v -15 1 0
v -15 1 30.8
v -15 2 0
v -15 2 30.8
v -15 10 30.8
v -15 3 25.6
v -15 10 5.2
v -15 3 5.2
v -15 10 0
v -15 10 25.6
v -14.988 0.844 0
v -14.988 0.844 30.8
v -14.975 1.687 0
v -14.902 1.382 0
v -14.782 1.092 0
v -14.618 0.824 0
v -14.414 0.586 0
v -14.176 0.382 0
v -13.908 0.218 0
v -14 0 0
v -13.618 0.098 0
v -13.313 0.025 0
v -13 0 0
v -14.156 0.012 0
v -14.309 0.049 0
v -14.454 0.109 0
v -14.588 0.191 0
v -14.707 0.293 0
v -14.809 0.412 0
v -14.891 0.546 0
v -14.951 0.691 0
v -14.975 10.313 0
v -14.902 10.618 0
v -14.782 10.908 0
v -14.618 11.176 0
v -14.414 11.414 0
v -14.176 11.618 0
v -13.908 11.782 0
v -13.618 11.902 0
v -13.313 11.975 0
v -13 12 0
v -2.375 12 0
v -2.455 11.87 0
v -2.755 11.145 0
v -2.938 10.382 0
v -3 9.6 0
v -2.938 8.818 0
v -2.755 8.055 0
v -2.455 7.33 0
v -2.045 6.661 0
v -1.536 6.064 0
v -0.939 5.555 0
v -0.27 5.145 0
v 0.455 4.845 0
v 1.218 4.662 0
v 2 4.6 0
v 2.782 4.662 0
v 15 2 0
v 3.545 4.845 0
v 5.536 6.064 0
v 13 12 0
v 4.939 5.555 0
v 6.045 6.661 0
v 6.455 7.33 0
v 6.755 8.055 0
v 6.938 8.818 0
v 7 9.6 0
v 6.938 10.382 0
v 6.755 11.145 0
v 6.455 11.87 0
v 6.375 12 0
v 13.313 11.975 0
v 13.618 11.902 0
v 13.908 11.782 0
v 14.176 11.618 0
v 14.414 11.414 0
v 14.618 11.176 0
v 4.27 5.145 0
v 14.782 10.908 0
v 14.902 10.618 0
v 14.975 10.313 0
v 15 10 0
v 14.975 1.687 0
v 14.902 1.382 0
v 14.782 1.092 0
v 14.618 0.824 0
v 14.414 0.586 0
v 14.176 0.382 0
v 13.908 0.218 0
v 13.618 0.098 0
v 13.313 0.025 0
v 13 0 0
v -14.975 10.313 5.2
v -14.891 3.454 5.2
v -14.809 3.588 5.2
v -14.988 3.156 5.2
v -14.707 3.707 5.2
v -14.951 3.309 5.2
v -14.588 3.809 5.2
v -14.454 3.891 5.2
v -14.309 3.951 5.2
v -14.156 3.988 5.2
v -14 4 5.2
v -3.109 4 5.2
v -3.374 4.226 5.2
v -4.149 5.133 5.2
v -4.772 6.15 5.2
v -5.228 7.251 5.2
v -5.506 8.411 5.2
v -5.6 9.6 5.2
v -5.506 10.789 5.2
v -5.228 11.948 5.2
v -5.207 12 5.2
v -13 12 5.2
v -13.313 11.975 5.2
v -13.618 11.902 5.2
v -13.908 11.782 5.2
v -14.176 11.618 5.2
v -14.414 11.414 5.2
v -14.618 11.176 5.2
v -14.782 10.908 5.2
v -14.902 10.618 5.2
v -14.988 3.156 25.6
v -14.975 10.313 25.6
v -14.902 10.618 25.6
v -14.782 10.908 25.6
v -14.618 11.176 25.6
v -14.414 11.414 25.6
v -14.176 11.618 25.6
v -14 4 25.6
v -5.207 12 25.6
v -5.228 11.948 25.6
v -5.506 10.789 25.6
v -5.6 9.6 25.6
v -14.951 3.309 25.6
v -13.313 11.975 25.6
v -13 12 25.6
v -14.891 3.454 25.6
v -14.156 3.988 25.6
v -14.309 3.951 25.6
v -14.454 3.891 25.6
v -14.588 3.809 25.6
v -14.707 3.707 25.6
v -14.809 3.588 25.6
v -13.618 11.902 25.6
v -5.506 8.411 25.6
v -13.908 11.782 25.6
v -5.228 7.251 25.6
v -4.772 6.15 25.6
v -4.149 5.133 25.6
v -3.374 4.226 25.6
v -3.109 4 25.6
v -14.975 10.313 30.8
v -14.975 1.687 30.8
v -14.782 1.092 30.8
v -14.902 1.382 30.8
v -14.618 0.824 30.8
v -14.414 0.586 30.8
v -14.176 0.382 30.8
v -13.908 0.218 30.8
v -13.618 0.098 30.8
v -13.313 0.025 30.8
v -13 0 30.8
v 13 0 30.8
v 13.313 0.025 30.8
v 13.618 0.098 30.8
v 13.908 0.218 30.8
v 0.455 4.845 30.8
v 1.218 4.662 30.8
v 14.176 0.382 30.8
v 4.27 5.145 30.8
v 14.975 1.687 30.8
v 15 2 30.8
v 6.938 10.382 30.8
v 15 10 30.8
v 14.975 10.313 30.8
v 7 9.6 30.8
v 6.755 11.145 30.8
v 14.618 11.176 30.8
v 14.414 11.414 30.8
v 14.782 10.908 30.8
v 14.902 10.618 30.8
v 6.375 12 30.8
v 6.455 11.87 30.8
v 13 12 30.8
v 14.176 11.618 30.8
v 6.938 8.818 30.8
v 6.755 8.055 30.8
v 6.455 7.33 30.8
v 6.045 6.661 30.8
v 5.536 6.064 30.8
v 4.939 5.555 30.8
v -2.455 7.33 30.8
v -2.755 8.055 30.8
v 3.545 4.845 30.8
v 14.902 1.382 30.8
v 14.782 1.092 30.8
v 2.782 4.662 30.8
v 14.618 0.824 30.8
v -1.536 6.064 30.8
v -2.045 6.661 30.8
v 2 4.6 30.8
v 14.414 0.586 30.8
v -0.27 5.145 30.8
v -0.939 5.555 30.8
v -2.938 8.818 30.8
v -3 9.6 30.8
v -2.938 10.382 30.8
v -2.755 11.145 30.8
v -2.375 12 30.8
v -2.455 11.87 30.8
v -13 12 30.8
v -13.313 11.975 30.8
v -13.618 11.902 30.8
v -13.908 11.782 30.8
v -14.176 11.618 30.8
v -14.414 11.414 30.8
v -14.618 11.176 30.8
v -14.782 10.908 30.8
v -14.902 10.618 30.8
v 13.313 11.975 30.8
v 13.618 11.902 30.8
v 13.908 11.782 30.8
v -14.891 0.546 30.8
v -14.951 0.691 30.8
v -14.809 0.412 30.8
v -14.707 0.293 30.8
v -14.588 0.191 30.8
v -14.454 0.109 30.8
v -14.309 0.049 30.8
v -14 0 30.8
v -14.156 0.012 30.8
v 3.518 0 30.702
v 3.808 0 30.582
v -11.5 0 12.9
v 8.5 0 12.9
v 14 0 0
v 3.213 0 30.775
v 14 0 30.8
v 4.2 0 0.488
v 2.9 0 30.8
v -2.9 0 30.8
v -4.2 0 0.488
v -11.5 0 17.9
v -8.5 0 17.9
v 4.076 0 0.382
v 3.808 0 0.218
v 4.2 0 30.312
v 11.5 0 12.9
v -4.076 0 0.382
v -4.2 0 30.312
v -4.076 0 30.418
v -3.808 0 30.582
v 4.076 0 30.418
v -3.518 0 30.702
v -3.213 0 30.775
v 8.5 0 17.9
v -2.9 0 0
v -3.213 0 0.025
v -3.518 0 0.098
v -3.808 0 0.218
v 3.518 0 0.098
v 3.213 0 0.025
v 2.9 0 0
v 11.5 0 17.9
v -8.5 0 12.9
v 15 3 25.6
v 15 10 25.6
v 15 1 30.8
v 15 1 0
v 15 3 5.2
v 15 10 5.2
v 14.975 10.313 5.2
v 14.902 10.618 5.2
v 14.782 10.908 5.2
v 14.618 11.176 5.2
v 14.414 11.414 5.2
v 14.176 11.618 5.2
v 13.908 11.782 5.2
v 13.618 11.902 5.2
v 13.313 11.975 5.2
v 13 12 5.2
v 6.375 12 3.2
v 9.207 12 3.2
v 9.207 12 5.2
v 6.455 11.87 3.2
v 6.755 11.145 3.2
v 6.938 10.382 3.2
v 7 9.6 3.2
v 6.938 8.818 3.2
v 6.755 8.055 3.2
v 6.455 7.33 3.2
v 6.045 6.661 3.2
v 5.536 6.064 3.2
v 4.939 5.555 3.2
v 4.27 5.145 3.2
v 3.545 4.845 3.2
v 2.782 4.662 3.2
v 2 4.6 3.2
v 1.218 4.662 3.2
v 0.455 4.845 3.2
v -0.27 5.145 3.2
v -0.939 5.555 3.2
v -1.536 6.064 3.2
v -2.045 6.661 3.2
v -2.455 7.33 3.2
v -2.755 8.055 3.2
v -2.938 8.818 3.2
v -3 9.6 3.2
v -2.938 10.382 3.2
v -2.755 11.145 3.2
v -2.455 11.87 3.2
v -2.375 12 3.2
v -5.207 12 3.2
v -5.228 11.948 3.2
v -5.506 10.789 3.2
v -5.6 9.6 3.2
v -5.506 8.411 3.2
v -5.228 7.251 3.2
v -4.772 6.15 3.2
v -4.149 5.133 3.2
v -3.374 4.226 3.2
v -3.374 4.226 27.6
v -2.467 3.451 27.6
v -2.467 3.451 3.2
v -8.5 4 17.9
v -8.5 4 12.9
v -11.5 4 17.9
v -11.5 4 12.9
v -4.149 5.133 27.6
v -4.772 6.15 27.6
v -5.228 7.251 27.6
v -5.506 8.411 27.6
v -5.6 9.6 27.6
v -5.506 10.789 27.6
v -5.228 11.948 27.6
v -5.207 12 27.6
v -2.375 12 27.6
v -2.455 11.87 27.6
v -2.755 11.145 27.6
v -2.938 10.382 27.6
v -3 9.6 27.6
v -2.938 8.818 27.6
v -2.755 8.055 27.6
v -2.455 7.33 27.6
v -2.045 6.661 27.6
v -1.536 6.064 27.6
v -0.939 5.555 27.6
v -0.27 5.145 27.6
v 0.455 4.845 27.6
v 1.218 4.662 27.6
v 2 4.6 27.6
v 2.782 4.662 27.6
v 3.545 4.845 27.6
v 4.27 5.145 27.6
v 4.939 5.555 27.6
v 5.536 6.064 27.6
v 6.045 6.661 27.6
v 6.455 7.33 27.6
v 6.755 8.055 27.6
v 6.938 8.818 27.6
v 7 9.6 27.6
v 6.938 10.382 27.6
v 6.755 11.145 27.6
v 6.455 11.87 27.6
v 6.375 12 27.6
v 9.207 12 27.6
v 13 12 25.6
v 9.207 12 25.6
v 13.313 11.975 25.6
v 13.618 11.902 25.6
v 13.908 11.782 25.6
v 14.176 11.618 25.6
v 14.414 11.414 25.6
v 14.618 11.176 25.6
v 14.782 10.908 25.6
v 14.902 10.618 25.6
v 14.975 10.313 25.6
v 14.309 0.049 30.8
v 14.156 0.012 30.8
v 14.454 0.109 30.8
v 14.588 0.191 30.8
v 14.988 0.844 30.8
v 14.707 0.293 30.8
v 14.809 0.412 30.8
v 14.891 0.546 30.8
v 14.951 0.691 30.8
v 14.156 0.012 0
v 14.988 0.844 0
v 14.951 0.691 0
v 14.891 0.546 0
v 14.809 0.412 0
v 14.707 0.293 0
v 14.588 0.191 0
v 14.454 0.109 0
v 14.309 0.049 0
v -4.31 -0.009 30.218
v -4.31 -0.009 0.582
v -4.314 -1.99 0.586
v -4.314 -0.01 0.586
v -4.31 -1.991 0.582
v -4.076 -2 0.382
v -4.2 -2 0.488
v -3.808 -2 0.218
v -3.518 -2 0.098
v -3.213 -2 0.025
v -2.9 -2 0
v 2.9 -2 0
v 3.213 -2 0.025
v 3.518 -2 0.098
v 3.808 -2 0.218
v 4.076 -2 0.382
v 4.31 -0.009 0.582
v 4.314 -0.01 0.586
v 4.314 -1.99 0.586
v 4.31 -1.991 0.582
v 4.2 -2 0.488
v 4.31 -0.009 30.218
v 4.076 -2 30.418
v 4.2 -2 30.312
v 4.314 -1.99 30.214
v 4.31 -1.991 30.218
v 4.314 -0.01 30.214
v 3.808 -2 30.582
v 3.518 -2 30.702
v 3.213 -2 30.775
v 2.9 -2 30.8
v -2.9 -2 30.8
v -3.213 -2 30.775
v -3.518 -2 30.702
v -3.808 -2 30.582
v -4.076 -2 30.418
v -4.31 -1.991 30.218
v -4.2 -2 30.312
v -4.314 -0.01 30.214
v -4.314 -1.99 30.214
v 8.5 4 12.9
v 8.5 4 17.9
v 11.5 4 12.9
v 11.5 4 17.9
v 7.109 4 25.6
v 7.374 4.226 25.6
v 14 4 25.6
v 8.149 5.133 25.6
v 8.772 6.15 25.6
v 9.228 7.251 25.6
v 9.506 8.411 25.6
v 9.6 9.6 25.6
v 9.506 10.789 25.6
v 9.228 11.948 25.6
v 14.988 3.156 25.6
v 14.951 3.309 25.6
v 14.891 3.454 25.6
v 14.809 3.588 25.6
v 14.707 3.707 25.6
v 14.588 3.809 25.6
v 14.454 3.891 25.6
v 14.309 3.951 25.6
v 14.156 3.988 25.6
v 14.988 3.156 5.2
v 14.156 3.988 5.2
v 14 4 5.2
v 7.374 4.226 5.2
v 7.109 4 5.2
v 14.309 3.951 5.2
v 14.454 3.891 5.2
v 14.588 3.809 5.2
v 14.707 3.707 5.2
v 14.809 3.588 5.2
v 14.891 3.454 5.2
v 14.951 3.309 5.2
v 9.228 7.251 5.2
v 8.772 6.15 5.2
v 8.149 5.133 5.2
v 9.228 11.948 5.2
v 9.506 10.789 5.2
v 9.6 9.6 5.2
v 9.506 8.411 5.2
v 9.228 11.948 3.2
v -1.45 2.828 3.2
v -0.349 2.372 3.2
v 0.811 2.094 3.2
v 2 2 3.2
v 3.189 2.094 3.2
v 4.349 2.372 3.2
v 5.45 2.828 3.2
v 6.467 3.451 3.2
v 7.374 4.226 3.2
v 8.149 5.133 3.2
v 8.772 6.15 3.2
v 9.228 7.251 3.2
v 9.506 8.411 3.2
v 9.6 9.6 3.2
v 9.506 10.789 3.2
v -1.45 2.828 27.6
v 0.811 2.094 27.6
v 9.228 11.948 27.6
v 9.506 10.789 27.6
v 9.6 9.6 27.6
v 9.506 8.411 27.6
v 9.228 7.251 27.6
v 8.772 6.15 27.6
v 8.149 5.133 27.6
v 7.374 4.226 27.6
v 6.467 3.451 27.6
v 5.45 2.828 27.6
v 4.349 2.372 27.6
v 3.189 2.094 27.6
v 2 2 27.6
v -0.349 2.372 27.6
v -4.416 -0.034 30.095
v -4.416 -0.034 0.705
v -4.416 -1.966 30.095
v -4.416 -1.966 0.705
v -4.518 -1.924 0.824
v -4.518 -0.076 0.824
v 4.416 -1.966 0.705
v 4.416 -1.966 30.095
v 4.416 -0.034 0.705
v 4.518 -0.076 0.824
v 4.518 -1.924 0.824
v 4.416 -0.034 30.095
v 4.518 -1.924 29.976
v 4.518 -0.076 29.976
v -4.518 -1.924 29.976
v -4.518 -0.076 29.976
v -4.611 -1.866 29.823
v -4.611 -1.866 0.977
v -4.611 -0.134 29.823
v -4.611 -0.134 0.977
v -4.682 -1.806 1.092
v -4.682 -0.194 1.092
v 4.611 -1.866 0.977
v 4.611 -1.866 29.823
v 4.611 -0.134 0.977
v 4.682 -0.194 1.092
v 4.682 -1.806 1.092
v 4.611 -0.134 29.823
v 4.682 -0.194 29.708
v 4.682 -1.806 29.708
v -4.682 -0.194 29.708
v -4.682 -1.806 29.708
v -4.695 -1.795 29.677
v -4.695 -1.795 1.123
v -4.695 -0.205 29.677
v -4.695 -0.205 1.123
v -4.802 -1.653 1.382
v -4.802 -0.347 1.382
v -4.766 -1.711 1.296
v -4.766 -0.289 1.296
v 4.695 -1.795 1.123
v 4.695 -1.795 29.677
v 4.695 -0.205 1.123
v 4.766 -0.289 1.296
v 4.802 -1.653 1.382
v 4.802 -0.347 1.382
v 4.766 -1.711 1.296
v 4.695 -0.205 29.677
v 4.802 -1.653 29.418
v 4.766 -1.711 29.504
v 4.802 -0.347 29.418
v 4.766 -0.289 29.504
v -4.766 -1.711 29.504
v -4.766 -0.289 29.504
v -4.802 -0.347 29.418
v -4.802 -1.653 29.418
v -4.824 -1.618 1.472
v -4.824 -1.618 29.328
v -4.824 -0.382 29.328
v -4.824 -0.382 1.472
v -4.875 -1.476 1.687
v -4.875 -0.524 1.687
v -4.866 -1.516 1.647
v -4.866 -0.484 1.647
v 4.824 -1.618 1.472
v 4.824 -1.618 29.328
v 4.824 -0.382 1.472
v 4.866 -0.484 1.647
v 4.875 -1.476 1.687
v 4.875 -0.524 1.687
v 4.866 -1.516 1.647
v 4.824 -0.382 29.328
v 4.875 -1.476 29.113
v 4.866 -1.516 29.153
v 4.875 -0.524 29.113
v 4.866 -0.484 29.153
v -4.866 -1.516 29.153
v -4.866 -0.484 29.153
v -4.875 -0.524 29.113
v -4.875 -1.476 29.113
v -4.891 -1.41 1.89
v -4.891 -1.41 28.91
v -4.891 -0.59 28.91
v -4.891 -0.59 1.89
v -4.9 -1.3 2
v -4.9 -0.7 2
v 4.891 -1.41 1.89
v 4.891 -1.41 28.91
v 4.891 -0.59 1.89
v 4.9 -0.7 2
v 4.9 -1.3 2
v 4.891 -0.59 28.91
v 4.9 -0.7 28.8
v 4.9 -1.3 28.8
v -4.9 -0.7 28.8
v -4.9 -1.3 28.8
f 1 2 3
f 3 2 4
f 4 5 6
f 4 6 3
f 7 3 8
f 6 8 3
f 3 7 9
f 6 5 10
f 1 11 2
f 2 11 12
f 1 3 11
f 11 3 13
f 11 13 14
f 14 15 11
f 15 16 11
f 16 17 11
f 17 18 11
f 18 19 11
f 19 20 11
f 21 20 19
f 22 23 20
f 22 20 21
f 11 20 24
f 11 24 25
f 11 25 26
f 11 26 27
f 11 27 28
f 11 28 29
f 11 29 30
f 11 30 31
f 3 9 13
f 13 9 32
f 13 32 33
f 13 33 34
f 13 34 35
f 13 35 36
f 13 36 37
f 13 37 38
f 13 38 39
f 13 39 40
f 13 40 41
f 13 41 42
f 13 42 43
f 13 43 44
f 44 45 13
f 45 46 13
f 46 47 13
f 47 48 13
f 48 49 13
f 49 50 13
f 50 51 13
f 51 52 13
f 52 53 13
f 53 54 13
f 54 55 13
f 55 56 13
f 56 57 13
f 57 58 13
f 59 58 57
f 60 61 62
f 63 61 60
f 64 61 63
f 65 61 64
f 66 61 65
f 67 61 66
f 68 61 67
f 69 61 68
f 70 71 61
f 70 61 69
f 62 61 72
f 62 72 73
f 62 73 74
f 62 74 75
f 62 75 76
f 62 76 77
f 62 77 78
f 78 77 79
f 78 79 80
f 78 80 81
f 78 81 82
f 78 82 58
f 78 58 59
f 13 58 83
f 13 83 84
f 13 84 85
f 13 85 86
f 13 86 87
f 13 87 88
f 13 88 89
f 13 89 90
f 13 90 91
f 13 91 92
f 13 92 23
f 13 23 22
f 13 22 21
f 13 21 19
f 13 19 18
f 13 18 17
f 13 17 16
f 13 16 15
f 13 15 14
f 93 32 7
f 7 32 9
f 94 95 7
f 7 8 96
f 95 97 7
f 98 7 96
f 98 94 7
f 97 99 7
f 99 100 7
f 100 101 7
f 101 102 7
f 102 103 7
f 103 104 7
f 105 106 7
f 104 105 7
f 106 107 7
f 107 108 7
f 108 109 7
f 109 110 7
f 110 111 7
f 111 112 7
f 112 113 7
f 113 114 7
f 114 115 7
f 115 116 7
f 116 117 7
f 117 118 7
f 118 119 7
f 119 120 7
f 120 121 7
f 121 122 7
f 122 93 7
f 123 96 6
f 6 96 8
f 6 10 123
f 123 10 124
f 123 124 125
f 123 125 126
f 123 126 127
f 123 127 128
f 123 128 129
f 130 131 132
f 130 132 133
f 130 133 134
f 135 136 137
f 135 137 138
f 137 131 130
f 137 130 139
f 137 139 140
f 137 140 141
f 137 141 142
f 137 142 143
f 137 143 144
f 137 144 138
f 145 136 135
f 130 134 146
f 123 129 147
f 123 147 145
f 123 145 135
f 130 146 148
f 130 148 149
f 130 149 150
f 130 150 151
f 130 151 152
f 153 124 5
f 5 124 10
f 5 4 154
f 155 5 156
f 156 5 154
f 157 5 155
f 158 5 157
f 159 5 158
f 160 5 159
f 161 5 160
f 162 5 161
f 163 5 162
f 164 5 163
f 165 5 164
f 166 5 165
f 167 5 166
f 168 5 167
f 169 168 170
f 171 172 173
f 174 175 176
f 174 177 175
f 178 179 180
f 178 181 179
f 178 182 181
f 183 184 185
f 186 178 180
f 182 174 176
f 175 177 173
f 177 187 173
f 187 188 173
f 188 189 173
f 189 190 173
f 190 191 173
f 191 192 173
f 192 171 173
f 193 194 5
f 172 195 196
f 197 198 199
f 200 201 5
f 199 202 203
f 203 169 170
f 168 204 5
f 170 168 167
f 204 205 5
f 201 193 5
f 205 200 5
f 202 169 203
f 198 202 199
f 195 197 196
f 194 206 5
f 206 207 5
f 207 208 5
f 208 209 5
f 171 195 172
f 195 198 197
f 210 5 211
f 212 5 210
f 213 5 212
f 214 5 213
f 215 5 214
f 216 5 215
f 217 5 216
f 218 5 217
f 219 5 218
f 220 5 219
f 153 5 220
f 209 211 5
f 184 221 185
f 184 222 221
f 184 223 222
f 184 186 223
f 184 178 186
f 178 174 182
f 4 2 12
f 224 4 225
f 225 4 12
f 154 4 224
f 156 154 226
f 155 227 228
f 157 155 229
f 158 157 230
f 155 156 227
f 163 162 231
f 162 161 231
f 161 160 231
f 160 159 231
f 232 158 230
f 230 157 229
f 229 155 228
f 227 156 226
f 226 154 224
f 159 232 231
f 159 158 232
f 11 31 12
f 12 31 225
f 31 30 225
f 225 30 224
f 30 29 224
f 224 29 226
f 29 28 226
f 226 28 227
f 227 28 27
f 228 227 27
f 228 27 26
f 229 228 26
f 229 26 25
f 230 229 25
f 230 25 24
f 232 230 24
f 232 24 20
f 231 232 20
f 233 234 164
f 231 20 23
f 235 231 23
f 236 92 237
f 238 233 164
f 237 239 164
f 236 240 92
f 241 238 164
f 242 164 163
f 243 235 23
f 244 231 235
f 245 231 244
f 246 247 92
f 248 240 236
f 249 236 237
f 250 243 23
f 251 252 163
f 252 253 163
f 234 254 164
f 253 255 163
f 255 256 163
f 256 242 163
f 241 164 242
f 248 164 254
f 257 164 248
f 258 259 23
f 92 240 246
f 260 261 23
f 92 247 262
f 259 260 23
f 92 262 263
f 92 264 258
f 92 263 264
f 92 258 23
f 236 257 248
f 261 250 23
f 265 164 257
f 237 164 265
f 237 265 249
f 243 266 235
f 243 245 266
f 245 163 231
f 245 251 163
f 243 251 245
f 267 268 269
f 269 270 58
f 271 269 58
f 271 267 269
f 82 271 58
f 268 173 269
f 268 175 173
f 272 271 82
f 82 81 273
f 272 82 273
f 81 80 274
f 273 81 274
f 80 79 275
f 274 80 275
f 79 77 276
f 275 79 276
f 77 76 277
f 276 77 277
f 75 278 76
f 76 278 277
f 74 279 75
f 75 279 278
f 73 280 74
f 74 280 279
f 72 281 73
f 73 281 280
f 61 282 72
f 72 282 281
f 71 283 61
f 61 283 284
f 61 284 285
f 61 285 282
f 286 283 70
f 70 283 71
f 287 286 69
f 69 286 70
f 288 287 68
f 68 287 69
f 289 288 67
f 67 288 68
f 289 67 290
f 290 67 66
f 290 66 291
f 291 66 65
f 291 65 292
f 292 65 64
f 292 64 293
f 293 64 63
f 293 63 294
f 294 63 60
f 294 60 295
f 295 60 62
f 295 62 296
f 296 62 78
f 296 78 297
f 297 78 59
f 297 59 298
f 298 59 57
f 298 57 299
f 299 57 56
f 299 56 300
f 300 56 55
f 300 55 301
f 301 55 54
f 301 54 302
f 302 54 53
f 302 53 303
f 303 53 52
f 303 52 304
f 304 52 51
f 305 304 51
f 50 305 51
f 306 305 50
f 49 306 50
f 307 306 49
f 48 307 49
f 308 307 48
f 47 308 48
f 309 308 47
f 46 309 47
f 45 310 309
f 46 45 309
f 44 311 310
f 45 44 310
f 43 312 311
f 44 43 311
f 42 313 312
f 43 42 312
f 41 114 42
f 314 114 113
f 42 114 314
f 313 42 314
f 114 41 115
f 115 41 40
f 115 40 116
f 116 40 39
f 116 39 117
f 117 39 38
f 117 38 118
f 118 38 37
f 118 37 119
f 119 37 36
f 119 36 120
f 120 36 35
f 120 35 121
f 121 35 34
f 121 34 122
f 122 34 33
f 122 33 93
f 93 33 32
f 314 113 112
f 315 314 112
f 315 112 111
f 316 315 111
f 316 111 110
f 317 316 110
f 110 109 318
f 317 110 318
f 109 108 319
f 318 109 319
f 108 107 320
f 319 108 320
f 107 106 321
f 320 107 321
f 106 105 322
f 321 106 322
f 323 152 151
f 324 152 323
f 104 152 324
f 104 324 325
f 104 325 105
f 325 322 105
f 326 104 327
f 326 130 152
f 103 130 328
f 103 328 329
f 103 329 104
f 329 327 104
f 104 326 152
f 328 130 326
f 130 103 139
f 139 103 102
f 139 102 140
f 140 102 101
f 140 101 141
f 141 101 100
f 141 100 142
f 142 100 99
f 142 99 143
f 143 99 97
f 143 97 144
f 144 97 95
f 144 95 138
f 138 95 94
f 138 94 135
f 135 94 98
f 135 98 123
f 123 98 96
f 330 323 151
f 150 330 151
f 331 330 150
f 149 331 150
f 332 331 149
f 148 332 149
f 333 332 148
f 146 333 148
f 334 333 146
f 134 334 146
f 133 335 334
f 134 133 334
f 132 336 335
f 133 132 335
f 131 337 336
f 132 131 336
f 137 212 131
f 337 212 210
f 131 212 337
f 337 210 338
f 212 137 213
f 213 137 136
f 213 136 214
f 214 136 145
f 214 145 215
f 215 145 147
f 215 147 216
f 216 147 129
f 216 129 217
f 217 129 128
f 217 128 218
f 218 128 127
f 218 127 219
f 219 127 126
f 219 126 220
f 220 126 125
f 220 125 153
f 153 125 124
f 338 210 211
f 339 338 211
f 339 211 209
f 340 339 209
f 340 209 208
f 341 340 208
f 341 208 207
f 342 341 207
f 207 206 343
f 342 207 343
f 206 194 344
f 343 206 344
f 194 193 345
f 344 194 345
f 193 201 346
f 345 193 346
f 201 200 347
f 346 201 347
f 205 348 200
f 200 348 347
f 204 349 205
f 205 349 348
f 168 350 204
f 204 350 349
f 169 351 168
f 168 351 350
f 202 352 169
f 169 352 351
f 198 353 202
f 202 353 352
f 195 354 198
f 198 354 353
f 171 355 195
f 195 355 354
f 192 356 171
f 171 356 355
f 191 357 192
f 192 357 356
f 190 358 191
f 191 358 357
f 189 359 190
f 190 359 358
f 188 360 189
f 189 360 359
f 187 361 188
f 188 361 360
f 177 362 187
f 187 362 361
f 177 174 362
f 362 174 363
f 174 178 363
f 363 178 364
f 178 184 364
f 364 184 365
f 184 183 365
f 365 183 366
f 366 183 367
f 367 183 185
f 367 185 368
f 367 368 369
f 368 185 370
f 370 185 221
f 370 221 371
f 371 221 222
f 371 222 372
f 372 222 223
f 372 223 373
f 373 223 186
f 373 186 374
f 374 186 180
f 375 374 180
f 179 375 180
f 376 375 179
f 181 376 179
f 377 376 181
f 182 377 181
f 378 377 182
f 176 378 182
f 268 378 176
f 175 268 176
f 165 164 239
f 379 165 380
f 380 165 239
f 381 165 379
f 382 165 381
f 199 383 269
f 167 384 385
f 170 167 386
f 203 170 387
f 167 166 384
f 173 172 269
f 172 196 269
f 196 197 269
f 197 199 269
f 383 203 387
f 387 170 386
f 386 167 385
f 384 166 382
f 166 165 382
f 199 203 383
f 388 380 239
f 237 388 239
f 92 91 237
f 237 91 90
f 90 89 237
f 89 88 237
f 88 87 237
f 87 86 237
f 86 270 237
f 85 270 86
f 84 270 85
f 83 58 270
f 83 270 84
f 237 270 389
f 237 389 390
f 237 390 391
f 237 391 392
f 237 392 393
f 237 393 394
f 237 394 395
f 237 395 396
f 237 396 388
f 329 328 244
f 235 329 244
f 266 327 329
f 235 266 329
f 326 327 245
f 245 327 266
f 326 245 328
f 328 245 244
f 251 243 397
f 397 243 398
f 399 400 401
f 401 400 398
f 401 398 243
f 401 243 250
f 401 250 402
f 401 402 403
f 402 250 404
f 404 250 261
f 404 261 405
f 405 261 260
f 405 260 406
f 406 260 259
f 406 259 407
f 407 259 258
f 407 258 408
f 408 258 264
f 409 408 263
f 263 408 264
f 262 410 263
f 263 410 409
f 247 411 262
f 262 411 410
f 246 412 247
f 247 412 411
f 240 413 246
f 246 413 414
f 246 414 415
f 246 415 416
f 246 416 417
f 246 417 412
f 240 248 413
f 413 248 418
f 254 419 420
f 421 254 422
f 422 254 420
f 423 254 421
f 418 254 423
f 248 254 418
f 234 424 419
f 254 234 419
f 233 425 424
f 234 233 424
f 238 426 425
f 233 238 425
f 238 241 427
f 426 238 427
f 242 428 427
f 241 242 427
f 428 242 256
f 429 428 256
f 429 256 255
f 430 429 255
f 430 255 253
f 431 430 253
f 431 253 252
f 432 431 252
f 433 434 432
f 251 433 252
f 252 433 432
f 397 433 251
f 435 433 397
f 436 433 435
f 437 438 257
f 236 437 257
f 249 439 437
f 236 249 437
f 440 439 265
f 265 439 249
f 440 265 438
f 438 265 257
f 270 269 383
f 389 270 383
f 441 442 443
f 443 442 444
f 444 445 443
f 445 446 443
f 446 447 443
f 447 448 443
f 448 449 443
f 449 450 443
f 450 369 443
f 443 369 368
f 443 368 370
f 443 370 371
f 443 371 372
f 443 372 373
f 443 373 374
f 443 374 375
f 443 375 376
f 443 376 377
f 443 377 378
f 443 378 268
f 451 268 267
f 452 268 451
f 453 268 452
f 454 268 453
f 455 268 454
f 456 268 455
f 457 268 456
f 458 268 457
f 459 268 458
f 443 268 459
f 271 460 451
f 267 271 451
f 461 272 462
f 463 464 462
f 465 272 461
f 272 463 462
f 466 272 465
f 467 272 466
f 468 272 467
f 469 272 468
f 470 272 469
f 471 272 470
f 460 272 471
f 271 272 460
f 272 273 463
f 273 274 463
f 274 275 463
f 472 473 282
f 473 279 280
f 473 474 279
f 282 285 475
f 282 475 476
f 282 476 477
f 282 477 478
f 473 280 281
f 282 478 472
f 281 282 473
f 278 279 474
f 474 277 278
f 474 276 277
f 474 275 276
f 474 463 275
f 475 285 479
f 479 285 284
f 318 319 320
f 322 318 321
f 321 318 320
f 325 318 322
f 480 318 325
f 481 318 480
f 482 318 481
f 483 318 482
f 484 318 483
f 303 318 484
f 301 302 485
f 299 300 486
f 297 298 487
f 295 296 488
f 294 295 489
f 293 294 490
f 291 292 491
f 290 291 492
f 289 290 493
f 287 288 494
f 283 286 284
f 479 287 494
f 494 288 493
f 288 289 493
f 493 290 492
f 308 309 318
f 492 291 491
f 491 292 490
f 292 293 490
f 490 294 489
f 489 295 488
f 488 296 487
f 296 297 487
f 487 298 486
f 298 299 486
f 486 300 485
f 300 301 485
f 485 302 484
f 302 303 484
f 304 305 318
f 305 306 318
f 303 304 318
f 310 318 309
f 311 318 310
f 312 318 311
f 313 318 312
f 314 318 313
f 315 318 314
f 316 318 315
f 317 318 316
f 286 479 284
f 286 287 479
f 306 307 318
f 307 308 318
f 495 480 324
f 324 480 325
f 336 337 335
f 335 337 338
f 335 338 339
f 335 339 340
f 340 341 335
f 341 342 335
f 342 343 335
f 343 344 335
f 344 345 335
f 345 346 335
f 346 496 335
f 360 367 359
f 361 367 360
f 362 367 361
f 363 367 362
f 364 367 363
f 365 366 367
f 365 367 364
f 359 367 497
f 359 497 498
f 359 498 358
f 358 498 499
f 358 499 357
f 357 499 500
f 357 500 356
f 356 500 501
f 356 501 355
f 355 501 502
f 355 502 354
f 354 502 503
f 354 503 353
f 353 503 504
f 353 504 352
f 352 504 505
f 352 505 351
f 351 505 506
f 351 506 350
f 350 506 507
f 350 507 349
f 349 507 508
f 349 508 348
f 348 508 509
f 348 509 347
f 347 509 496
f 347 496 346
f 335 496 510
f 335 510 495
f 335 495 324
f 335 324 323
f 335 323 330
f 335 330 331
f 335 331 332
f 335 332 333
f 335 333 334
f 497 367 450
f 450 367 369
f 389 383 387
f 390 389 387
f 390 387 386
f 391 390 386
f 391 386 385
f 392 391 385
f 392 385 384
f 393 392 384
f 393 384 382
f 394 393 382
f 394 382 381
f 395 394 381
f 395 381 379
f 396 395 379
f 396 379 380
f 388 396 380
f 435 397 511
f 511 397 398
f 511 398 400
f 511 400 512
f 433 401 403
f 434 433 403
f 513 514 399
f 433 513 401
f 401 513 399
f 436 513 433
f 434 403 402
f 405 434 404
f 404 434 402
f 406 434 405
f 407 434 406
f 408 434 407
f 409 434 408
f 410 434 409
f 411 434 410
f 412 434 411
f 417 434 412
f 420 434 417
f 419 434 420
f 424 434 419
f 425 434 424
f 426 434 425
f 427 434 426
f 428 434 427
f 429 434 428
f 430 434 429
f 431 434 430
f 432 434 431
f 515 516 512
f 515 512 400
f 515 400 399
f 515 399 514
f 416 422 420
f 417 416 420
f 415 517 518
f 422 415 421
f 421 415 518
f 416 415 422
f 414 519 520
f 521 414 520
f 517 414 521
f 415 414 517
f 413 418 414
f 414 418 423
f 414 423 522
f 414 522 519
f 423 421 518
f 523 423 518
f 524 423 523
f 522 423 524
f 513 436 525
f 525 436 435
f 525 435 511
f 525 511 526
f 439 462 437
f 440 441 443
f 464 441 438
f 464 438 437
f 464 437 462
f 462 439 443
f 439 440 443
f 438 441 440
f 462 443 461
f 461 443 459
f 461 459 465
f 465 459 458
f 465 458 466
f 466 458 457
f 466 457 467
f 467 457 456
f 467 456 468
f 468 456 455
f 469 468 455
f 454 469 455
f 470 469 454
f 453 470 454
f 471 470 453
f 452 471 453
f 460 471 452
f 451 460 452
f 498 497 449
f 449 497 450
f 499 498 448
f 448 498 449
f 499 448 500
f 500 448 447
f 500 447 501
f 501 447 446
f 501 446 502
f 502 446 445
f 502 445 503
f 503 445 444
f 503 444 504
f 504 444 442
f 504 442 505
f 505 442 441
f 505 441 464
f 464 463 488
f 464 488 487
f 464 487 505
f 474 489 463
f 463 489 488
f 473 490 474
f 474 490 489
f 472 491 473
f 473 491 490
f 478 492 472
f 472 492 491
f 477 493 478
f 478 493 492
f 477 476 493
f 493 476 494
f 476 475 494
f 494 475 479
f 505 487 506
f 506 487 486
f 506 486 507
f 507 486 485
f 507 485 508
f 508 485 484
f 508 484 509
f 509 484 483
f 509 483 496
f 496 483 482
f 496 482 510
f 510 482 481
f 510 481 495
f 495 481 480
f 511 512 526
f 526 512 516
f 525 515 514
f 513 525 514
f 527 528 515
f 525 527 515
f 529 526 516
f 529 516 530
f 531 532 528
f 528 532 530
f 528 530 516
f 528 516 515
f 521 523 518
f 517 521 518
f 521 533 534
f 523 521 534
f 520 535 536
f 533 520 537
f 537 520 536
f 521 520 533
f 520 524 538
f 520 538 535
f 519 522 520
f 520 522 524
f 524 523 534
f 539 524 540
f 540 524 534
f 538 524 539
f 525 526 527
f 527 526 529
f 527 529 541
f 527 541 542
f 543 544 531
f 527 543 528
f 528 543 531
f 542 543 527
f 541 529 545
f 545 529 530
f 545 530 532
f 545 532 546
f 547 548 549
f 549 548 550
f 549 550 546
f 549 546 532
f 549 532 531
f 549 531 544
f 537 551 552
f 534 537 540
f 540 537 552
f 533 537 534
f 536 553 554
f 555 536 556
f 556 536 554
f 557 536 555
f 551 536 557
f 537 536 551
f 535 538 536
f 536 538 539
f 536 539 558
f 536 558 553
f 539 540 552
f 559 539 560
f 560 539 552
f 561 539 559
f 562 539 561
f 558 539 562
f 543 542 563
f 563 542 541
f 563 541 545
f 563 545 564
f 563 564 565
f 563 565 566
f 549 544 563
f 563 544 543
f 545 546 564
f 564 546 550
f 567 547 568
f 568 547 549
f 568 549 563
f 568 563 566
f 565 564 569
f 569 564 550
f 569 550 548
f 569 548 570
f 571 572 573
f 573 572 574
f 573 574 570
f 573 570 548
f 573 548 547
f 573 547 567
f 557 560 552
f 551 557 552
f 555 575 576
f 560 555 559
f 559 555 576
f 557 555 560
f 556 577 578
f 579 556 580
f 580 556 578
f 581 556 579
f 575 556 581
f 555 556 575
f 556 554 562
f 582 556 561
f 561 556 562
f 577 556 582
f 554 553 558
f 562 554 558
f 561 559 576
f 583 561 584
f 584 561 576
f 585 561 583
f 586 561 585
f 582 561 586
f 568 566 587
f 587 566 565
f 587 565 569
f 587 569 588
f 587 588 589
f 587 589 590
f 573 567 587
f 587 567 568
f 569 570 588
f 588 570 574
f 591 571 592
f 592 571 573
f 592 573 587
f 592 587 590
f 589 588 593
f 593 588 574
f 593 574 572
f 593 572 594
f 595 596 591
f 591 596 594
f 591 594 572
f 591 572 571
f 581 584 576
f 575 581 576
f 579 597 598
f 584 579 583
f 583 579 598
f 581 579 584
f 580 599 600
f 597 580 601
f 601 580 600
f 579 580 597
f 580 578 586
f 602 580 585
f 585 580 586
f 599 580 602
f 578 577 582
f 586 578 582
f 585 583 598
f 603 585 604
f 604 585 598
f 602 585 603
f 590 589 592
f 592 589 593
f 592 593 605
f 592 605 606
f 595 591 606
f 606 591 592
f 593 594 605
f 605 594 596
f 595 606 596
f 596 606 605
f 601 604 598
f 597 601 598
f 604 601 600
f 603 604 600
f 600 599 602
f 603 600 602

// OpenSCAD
support=1;
teardrop_angle=45;
brim=0;
support_T=0.25;

$fn=40;

module fillet(r, h, pos, rot)
{
	translate(pos)
	rotate(rot)
	translate([-r,-r,0])
		difference()
		{
			translate([0,0,-h/2])
				cube([r+1,r+1,h]);
			cylinder(r=r, h=h+2, center=true);
		}
}

module __rounded_cube(dim, r, rounded)
{
	difference()
	{
		cube(dim, center=true);
		if(r[0])
			for(y=[-1,1])
			for(z=[-1,1])
			scale([1,y,z])
			fillet(r=r[0], h=dim[0]+2, pos=[0, dim[1]/2, dim[2]/2], rot=[0,-90,0]);
		if(r[1])
			for(x=[-1,1])
			for(z=[-1,1])
			scale([x,1,z])
			fillet(r=r[1], h=dim[1]+2, pos=[dim[0]/2, 0, dim[2]/2], rot=[90,0,0]);
		if(r[2])
			for(x=[-1,1])
			for(y=[-1,1])
			scale([x,y,1])
			fillet(r=r[2], h=dim[2]+2, pos=[dim[0]/2, dim[1]/2, 0], rot=[0,0,0]);
		if(r[0]&&(r[1]==r[2])&&(r[0]==r[1]))
			for(x=[-1,1])
			for(y=[-1,1])
			for(z=[-1,1])
			scale([x,y,z])
			translate(dim/2)
			translate(-r)
			scale(r)
			difference()
			{
				cube([2,2,2]);
				sphere(r=1);
			}
	}
}

module rounded_cube(dim=[], r=[], center=false)
{
	if(center)
	{
		__rounded_cube(dim=dim, r=r, r2=r2);
	}
	else
	{
		translate(dim/2)
		__rounded_cube(dim=dim, r=r);
	}
}

t_ang=teardrop_angle;

module supported_cylinder(r=1,h=1,z_rot=0, center=false)
{
	union()
	{
		cylinder(r=r,h=h,center=center);
		if (support)
		rotate([0,0,z_rot])
		linear_extrude(height=h, center=center)
		if(support_cylinder_style=="trapezoid")
		{
			polygon([[r*sin(t_ang),r*cos(t_ang)], [r, r*(cos(t_ang)-tan(t_ang)*(1-sin(t_ang)))], [r, -r*(cos(t_ang)-tan(t_ang)*(1-sin(t_ang)))],[r*sin(t_ang),-r*cos(t_ang)]]);
		}
		else if(support_cylinder_style=="teardrop")
		{
			polygon([[r*sin(t_ang),r*cos(t_ang)],[r/sin(t_ang),0],[r*sin(t_ang),-r*cos(t_ang)]]);
		}		
	}
}

L=30.8;
W=30;
T=4;

slot_W=9.8;
slot_T=2;
slot_fillet=2;

bearing_D=15.2;
bearing_from_plane=2;
bearing_L=24.4;
rod_hole_D=10;

wall_H=12;
wall_T=(L-bearing_L)/2+2;

module Prusa_i3_Y_Busing()
{
	difference()
	{
		union()
		{
			translate([-W/2,0,0])
				rounded_cube([W,T,L], r=[0,0,1]);
			for (i=[0,1])
			translate([-W/2,0,(L-wall_T)*i])
				rounded_cube([W,wall_H,wall_T], r=[0,0,2]);
			translate([-slot_W/2,-slot_T,0])
				rounded_cube([slot_W,slot_T,L], r=[0,slot_fillet,0.7]);
			if(brim)
				for(i=[-1,1])
				translate([-15*i,2,support_T/2])
					cube([10,10,support_T], center=true);
		}
		for(i=[-10,10])
			translate([i,T/2,L/2])
				cube([3,T+2,5], center=true);
		//for(i=[0,1])
			//fillet(r=10, h=T+2, pos=[W/2*(1-2*i),T/2,L], rot=[90,-90*i,0]);
		translate([2,bearing_D/2+bearing_from_plane, L/2])
		{
			cylinder(r=bearing_D/2, h=bearing_L, center=true);
			cylinder(r=rod_hole_D/2, h=L+2, center=true);
		}
	}
}

Prusa_i3_Y_Busing();
